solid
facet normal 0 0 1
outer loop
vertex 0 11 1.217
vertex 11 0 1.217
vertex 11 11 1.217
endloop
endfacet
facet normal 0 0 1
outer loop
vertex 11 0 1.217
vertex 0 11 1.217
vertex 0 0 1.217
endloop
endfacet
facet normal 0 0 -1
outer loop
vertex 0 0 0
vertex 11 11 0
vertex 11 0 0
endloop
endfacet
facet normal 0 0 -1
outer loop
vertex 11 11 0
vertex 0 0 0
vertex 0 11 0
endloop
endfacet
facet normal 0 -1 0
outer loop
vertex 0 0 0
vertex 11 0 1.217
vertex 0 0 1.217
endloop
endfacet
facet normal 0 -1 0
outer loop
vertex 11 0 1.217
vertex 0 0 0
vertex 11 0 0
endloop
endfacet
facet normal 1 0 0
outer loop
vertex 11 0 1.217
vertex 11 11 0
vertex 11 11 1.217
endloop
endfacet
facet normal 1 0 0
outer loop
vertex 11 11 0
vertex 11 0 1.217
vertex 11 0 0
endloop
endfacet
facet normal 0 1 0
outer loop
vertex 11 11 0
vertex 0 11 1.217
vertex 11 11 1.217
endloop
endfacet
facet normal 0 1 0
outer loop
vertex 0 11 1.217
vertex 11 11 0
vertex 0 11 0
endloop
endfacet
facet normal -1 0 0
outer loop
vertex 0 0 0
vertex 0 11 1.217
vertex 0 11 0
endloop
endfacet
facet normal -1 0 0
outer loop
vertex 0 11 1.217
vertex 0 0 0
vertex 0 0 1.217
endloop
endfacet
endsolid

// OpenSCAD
/* Warning, this is a very basic generator with a lot of approximation 
input data : [TFBGA, 4PB, 11x11x1.217mm, 240, , C, C04-21532C]
generated by com.zoubworld.electronics.cad.model3d.Basic
Date : Sun Feb 15 10:50:49 CET 2026
*/

//body
color("black")
translate([0,0,0])
cube([11.0,11.0,1.217], center=false);
